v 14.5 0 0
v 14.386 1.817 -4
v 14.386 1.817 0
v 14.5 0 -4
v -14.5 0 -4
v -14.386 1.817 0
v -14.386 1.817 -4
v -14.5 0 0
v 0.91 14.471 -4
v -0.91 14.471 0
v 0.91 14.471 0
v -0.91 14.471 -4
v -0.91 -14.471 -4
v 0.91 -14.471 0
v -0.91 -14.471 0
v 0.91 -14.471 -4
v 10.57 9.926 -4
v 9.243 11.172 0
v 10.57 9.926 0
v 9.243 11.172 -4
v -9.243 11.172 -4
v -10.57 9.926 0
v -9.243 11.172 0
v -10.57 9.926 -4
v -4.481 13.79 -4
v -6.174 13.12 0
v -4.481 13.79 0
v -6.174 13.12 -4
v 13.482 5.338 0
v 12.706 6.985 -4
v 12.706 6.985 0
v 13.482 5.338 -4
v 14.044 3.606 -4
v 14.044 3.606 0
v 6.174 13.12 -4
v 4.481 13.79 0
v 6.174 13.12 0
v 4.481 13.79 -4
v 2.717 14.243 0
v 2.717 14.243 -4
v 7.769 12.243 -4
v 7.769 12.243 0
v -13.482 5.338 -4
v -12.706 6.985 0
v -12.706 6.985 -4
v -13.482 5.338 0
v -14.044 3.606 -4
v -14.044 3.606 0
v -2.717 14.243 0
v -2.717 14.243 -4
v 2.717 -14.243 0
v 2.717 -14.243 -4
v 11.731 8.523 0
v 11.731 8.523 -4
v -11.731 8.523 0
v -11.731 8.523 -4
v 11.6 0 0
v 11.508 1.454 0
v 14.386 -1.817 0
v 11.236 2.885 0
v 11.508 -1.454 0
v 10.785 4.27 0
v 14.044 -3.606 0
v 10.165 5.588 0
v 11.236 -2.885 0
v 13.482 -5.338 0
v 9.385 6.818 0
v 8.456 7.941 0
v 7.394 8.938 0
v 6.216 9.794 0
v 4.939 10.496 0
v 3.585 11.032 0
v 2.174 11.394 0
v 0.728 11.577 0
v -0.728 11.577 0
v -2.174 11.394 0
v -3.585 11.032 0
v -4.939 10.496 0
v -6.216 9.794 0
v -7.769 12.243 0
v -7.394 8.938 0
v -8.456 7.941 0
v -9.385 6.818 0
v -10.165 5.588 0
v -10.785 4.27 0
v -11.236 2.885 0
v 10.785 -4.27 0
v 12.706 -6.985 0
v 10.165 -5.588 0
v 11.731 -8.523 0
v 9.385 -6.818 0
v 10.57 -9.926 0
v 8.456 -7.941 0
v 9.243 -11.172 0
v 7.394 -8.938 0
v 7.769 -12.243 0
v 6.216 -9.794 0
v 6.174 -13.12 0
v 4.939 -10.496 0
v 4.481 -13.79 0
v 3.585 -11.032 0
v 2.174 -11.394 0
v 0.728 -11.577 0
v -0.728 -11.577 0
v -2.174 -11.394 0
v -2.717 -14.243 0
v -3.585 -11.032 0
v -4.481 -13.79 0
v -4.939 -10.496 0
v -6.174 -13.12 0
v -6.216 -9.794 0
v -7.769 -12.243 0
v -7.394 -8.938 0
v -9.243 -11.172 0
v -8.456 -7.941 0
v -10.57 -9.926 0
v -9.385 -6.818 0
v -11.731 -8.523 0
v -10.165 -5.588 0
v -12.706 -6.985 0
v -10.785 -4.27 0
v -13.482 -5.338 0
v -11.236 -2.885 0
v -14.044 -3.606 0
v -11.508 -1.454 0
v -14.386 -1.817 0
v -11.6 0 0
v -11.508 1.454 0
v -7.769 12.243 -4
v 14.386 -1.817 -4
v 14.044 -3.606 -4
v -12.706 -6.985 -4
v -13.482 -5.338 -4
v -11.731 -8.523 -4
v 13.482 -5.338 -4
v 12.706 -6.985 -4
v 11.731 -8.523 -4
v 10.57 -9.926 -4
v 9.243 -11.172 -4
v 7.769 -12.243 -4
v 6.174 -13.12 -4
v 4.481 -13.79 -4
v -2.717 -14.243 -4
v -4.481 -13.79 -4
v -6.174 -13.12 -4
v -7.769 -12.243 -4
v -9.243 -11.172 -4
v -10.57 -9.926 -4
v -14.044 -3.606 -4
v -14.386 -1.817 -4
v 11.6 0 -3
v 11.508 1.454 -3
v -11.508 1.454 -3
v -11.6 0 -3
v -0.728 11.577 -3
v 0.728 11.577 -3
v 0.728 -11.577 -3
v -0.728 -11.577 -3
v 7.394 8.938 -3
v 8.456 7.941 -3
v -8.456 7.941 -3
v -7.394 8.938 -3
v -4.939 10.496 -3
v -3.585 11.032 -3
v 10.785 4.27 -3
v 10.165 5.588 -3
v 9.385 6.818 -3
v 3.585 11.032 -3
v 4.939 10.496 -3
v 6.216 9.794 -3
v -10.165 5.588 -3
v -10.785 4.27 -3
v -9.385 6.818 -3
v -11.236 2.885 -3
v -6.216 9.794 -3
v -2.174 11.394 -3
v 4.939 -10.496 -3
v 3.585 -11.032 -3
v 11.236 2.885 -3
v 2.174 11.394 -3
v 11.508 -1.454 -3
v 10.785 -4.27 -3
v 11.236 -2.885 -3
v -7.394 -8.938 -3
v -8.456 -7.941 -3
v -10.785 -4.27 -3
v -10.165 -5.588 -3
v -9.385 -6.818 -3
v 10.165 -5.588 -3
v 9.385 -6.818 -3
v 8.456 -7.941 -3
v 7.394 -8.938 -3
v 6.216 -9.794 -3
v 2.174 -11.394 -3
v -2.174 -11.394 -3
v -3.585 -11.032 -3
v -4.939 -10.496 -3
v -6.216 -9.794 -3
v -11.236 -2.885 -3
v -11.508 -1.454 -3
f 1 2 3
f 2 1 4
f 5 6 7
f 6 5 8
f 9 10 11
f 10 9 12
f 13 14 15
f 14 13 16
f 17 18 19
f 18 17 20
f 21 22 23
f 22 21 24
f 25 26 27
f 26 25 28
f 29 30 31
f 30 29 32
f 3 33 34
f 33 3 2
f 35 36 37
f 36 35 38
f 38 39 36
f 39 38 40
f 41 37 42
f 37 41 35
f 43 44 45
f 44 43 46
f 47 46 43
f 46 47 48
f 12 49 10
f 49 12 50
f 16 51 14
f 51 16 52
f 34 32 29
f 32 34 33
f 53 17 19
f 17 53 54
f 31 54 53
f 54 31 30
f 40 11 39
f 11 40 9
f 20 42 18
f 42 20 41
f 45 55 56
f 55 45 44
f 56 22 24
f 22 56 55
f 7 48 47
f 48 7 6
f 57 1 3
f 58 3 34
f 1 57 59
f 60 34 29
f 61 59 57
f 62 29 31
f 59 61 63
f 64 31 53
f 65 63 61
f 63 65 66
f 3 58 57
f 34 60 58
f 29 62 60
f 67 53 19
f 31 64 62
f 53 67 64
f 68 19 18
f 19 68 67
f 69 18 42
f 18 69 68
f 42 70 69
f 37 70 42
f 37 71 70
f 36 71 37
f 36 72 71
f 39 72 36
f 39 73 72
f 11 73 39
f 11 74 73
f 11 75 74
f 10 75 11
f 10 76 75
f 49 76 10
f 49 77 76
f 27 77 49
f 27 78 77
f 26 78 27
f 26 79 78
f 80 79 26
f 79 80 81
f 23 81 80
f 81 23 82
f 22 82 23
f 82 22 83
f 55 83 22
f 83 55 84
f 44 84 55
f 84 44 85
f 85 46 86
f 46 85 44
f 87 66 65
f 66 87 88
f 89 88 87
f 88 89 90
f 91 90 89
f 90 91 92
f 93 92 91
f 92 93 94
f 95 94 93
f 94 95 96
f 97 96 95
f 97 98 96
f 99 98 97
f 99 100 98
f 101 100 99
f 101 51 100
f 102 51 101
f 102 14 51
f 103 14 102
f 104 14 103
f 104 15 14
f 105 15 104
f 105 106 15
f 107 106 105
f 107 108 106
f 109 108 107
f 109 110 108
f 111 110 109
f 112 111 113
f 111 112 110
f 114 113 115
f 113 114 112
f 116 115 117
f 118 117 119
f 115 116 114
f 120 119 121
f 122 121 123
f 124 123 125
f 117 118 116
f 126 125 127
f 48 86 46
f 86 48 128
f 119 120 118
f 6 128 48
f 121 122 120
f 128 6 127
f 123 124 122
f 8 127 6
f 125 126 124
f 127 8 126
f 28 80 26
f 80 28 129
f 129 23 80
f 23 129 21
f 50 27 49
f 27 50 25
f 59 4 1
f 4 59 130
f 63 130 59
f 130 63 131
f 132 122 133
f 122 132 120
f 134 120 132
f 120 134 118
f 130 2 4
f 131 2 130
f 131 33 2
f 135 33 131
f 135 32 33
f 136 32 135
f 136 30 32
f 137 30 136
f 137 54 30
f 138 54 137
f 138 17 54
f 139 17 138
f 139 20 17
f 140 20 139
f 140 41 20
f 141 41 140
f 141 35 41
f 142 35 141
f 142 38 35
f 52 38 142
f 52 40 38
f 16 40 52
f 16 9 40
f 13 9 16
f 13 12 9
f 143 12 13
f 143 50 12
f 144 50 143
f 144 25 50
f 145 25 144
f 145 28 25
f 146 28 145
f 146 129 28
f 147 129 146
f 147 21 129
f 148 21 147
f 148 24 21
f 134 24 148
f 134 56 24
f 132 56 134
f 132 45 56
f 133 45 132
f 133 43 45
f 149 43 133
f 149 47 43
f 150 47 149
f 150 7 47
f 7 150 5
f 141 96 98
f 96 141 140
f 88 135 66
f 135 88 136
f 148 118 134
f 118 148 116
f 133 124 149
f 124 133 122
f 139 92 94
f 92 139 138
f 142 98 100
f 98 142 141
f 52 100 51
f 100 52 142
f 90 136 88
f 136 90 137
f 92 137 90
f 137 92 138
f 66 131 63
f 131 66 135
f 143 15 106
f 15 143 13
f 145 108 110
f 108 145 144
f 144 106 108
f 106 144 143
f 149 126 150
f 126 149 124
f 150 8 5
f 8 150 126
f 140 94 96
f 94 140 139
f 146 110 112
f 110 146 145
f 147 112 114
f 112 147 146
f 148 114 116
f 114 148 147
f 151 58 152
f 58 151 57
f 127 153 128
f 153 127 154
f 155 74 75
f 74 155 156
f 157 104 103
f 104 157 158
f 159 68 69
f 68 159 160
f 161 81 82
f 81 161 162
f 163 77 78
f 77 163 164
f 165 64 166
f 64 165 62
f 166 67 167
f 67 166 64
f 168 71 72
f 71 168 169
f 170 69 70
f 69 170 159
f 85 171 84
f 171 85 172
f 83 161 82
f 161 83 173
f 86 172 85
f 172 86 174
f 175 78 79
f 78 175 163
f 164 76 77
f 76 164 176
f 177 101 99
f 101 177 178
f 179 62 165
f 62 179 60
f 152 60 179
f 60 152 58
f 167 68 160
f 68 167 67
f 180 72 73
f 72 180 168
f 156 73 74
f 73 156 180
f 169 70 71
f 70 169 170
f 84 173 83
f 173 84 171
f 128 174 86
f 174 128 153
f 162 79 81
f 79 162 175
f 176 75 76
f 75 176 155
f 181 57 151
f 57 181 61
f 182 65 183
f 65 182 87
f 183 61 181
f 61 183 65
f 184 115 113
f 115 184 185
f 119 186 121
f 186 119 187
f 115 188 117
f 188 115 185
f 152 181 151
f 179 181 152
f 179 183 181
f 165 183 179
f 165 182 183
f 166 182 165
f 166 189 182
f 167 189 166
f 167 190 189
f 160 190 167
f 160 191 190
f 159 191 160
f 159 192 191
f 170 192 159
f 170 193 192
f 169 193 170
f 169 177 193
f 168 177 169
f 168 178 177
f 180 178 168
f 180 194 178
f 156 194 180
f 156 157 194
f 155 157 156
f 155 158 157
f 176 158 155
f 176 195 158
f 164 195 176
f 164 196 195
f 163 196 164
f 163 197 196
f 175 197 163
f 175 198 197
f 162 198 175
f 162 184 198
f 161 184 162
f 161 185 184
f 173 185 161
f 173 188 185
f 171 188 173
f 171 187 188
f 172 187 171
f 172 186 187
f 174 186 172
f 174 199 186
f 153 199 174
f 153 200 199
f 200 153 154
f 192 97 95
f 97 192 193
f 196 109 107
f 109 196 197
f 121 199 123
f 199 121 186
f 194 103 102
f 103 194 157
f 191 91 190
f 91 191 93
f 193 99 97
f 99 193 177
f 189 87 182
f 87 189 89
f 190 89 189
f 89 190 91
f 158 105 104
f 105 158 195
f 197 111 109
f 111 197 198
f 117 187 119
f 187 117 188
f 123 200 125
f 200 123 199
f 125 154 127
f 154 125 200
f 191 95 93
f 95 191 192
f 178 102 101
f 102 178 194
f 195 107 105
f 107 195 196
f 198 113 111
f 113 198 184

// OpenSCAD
$fn = 50;


difference() {
	union() {
		translate(v = [0, 0, -4.0000000000]) {
			cylinder(h = 4, r = 14.5000000000);
		}
	}
	union() {
		#translate(v = [0, 0, -3.0000000000]) {
			cylinder(h = 3, r = 11.6000000000);
		}
	}
}
